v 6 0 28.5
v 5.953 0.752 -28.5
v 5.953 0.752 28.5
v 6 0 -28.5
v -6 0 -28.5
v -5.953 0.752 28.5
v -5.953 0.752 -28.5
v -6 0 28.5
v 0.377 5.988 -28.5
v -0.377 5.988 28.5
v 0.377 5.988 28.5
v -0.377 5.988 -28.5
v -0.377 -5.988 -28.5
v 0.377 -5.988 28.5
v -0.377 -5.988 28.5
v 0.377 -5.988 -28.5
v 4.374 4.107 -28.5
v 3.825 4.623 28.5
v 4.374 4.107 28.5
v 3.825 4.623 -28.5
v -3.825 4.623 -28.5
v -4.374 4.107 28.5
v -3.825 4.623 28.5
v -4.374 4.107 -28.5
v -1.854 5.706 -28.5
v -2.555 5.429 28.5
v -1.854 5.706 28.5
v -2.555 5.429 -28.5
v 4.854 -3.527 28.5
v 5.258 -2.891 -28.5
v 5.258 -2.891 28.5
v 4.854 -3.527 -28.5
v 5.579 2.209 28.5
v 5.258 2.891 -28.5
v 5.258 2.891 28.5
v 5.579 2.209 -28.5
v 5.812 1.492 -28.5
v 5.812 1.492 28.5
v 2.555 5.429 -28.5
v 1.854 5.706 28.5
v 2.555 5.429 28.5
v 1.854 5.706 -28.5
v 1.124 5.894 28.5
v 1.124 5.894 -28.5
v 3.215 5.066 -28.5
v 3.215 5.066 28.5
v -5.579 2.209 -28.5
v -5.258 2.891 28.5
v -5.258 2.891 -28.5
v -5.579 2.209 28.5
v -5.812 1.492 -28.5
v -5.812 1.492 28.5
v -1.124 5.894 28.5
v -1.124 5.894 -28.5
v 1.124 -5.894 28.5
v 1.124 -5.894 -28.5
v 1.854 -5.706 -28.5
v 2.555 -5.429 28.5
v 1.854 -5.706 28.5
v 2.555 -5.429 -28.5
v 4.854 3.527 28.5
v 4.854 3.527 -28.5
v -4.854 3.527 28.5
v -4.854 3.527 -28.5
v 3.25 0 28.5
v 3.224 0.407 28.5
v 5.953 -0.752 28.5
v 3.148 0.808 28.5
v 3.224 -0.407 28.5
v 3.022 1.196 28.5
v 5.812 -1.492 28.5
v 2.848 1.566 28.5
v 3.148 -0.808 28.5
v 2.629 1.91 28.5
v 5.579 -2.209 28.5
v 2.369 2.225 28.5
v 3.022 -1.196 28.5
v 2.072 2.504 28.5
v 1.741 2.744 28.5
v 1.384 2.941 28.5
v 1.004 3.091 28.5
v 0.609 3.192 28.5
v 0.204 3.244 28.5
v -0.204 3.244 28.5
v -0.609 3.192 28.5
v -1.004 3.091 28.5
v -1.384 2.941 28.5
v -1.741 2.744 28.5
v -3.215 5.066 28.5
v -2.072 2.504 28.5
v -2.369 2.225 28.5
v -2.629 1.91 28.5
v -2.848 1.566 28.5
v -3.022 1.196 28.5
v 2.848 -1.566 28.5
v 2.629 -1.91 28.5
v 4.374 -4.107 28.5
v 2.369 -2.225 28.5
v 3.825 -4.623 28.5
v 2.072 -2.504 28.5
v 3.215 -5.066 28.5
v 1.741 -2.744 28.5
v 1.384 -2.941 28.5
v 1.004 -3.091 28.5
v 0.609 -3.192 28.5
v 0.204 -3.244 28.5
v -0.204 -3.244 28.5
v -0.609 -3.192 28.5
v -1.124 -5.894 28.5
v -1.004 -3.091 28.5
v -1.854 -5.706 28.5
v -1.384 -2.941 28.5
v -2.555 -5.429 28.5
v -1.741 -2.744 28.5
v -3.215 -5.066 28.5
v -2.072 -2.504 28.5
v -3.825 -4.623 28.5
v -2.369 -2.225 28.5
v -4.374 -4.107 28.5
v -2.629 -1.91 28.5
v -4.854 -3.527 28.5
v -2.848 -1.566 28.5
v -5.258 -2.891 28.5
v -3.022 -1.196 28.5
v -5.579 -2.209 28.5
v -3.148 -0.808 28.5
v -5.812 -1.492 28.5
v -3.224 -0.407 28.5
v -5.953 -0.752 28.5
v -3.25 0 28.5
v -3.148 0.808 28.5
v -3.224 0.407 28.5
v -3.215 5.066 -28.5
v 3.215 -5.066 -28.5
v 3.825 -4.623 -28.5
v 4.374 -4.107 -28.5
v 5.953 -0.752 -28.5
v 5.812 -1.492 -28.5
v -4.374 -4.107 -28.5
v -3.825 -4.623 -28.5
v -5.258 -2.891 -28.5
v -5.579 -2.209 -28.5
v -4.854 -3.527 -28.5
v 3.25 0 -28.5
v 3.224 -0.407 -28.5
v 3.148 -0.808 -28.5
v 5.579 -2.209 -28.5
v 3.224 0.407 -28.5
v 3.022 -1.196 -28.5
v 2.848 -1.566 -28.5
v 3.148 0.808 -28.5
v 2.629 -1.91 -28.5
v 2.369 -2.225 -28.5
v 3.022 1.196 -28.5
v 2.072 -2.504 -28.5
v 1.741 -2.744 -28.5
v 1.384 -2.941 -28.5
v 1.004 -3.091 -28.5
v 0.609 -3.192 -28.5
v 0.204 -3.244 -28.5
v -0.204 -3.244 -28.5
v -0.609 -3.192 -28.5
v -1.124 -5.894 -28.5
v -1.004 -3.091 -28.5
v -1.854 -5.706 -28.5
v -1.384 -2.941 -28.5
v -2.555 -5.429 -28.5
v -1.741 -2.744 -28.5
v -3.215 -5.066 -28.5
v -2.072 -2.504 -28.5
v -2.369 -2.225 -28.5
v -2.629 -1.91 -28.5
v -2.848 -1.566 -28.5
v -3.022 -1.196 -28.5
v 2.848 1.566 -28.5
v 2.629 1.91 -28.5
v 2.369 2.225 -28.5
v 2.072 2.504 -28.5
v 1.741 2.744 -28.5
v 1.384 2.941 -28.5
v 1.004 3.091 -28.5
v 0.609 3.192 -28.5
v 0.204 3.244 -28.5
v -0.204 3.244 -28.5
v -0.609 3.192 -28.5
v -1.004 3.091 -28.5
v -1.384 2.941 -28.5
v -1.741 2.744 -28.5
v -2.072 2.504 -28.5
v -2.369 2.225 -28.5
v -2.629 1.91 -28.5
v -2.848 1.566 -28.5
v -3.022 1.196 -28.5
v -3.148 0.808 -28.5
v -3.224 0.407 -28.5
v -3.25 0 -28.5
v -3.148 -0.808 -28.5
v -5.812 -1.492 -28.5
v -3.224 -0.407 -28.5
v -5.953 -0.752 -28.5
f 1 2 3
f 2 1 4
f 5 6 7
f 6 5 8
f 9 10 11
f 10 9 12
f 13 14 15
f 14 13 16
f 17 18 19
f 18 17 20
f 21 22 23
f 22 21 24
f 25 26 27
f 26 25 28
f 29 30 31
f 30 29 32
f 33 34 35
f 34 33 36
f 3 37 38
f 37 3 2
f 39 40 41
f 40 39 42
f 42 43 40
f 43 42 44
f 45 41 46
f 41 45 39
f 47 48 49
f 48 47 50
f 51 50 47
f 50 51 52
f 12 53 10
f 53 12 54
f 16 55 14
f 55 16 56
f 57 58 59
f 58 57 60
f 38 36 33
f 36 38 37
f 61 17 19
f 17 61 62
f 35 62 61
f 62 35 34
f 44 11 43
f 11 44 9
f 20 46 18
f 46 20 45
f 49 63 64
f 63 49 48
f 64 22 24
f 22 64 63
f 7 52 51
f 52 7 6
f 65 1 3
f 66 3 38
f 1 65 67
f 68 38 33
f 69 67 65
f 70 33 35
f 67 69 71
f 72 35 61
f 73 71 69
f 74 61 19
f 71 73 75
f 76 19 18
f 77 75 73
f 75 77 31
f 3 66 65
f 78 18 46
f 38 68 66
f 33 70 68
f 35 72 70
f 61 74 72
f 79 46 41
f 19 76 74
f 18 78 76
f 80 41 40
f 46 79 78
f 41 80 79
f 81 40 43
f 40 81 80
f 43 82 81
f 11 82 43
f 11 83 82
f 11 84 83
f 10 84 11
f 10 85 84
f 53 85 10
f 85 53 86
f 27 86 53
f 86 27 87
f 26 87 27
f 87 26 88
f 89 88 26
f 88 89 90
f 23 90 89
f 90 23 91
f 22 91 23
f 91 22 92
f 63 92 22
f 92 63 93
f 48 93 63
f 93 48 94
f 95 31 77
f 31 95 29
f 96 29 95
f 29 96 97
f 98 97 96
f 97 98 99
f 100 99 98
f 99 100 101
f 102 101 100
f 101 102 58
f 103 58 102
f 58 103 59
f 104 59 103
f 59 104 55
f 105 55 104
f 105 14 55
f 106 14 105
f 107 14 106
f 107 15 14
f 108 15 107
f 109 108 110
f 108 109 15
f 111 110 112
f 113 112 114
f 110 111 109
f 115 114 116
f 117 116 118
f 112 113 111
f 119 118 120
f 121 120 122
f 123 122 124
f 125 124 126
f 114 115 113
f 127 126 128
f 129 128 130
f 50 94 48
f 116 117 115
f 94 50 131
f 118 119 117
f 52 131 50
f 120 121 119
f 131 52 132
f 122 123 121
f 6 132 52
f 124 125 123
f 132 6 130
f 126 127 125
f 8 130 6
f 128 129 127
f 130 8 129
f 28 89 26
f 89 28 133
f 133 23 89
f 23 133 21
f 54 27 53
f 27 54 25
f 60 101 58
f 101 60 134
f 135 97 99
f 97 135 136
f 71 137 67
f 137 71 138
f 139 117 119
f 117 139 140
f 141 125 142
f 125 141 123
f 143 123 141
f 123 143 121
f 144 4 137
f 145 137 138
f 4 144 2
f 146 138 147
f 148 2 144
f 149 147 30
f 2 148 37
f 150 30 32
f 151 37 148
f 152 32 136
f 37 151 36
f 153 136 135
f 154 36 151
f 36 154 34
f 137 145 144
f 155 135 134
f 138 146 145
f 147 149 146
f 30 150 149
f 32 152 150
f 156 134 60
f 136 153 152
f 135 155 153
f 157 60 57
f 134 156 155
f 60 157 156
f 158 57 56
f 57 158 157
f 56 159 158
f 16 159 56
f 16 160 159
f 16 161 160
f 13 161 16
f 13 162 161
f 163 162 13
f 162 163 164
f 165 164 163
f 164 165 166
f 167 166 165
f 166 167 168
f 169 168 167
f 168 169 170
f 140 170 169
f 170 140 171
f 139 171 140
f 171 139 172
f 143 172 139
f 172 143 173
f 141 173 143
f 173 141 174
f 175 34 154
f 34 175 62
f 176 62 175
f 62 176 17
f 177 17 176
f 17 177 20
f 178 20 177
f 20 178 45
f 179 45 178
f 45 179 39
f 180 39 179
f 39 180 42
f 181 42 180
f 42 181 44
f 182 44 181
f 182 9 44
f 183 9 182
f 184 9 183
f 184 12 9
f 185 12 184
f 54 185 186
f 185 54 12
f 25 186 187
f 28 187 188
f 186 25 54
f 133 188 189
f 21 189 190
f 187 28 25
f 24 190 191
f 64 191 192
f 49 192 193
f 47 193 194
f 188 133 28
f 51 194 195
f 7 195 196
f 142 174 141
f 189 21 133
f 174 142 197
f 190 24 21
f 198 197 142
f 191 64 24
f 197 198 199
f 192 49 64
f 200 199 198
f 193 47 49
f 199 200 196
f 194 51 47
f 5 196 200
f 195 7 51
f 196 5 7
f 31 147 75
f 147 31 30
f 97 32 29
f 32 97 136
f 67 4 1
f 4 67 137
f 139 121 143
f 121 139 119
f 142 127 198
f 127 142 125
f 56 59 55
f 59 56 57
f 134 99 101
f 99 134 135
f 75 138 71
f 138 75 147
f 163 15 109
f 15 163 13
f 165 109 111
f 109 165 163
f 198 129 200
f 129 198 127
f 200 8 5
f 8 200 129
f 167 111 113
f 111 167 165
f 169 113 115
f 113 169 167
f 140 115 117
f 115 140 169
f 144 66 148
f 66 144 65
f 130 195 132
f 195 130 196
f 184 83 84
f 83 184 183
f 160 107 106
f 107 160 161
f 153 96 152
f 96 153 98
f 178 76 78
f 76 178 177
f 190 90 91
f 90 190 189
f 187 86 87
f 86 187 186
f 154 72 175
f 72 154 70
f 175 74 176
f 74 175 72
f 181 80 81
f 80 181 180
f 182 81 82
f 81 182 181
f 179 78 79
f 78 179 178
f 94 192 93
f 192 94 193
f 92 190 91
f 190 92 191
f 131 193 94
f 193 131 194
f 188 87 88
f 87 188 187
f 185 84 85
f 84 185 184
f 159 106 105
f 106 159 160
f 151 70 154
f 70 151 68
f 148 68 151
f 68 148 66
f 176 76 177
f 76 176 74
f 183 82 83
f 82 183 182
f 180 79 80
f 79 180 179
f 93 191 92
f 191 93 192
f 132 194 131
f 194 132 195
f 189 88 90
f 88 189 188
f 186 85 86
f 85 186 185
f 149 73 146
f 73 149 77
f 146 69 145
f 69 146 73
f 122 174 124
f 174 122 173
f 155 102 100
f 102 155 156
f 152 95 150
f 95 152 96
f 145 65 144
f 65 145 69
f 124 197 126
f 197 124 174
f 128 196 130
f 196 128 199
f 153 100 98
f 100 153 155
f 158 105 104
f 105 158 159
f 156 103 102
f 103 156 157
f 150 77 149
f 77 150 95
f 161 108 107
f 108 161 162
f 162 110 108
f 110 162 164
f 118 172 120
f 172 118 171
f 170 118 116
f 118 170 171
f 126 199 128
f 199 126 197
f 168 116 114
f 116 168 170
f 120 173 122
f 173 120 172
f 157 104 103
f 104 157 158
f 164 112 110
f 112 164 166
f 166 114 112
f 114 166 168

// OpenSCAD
$fn = 50;


difference() {
	union() {
		translate(v = [0, 0, -28.5000000000]) {
			cylinder(h = 57, r = 6.0000000000);
		}
	}
	union() {
		translate(v = [0, 0, -100.0000000000]) {
			cylinder(h = 200, r = 3.2500000000);
		}
	}
}
